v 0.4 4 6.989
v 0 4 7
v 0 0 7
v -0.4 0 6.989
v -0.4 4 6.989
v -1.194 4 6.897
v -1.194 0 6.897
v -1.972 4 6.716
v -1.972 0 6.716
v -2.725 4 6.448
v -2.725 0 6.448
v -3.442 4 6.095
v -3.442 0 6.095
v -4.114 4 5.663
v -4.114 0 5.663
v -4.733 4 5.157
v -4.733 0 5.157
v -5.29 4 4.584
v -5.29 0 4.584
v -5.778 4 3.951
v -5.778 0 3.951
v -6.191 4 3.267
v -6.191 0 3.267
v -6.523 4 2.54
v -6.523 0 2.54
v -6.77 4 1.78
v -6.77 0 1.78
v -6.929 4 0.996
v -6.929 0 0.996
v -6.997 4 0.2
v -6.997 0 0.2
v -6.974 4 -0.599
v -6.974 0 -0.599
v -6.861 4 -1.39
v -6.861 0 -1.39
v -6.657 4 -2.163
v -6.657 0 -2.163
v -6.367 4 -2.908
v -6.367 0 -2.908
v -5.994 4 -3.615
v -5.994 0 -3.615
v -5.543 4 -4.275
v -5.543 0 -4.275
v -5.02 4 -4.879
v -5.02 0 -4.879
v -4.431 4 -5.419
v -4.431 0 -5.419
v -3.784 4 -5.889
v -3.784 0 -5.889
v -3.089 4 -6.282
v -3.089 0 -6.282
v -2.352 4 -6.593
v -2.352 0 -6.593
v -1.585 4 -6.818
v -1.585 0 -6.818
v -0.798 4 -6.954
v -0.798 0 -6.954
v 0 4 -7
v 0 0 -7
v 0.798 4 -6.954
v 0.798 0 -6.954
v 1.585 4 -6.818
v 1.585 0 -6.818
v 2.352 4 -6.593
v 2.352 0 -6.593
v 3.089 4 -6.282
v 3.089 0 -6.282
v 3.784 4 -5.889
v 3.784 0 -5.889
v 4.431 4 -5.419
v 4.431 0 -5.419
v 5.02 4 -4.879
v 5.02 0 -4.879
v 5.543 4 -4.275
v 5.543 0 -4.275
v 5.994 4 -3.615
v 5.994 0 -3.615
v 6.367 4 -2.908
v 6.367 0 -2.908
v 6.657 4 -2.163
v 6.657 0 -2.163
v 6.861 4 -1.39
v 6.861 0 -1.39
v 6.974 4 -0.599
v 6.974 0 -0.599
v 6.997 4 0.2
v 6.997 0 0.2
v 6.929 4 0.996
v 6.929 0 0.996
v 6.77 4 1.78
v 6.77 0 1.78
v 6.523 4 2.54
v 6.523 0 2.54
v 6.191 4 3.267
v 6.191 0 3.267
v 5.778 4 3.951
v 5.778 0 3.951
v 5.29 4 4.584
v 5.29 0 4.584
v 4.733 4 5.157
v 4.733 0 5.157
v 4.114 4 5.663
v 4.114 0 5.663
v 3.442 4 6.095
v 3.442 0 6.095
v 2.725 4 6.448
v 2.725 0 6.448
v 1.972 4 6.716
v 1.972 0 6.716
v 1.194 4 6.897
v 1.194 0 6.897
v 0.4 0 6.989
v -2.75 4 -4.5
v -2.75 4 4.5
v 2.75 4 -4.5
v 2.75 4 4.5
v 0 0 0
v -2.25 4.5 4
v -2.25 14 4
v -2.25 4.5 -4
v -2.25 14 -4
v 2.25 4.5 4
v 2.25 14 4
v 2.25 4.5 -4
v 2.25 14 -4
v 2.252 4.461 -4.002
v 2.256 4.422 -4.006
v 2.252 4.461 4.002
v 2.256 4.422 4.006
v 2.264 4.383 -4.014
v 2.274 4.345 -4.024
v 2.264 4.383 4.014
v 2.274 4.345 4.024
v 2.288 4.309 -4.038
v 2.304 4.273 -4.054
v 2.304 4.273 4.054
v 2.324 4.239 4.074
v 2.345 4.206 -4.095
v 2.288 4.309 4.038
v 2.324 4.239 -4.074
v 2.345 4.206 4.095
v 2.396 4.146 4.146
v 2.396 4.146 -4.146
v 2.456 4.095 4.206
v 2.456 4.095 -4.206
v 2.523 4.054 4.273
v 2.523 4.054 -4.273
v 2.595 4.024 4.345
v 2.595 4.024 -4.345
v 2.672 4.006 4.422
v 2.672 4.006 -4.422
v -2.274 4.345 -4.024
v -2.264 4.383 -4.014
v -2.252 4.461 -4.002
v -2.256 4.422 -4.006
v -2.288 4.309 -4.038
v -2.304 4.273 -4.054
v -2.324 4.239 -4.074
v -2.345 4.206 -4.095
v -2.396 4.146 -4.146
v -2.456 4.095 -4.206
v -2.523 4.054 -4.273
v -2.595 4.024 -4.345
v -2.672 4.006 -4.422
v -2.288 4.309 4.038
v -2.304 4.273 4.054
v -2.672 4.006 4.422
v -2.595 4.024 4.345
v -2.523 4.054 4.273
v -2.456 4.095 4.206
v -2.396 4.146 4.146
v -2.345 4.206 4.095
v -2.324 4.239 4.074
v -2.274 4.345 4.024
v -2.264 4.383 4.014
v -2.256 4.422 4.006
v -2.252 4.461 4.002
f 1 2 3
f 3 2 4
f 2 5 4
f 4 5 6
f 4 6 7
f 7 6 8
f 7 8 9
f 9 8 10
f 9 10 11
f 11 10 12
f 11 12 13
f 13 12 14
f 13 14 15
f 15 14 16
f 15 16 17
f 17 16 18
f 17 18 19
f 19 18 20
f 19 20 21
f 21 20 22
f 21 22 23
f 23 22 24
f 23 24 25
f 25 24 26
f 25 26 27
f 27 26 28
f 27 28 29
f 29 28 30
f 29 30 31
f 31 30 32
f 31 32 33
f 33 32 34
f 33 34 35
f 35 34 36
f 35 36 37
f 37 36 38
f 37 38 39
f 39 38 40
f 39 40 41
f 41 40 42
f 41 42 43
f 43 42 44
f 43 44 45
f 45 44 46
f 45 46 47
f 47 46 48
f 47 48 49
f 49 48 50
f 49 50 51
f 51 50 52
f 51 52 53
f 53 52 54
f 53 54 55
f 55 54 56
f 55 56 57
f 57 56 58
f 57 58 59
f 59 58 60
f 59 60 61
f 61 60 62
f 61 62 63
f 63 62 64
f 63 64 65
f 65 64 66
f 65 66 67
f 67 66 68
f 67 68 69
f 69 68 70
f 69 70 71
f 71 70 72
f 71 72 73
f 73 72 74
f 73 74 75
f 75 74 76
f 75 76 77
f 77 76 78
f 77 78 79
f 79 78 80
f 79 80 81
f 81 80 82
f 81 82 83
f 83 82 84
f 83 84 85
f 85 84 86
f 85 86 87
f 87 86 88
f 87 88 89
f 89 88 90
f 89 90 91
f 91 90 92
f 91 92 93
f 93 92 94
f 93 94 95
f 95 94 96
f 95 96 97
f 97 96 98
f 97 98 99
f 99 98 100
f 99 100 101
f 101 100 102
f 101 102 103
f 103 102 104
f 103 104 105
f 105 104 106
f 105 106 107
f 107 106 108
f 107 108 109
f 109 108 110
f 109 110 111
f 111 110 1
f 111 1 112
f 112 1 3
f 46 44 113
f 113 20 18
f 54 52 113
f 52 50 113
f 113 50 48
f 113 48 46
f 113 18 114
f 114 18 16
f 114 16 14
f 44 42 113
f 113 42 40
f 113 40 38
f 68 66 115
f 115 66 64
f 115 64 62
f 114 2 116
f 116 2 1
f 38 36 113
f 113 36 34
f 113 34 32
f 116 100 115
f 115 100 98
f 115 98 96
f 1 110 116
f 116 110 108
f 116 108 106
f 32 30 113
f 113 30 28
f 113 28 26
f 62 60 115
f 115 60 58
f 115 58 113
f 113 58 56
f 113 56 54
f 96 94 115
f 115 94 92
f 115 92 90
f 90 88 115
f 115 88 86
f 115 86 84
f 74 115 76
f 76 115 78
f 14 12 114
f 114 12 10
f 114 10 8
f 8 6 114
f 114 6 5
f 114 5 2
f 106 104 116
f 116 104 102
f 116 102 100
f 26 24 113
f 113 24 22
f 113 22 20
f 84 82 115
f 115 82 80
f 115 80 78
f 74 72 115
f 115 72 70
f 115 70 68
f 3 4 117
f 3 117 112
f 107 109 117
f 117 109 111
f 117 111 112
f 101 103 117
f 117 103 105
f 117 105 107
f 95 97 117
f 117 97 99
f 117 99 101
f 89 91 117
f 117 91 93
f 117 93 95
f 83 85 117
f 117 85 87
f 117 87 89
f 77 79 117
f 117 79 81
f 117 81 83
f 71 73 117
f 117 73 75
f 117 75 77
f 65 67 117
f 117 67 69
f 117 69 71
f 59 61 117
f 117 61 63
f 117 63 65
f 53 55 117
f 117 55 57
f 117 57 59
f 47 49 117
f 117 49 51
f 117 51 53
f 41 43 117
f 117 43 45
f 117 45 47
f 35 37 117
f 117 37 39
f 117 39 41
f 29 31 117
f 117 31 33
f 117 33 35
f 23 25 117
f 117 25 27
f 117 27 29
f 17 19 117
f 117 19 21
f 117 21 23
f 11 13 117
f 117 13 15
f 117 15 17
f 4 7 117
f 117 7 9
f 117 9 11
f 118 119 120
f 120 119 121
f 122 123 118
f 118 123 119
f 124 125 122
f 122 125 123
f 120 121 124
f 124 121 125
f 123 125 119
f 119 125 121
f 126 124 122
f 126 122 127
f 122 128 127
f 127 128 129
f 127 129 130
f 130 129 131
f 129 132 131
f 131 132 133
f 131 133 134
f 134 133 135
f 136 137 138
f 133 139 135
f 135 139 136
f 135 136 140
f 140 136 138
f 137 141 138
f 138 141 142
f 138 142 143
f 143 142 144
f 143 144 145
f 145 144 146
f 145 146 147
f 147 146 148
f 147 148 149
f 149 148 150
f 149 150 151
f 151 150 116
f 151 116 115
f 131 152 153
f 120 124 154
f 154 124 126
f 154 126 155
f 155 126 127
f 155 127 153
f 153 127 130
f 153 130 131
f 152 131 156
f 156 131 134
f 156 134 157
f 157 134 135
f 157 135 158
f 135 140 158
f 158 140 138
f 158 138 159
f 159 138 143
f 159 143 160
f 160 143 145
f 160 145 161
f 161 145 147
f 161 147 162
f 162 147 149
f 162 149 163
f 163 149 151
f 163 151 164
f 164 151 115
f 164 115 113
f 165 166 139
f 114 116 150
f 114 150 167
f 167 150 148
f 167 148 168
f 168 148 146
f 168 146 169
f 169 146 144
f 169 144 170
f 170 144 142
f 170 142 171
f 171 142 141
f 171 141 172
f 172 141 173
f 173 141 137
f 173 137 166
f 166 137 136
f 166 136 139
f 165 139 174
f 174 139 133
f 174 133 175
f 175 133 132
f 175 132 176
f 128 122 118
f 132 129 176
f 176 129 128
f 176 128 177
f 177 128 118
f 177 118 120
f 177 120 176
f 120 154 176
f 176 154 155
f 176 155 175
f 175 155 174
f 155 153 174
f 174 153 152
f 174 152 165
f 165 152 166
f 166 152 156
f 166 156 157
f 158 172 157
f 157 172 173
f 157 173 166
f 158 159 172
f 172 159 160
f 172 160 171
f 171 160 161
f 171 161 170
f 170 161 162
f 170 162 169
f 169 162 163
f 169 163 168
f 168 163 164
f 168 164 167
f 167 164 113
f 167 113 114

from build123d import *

# Parameters (mm, degrees)
SKETCH1_R           = 7
BOSS_EXTRUDE1_DEPTH = 4
SKETCH2_W           = 4.5
SKETCH2_H           = 8
BOSS_EXTRUDE2_DEPTH = 10
FILLET2_R           = 0.5


with BuildPart() as part:
    # Sketch1 → Boss-Extrude1 (new body)
    with BuildSketch(Plane(origin=(0, 0, 0), x_dir=(1, 0, 0), z_dir=(0, 1, 0))):
        with Locations(Location((0, 0, 0), (0, 0, 270))):
            Circle(SKETCH1_R)
    extrude(amount=BOSS_EXTRUDE1_DEPTH)

    # Sketch2 → Boss-Extrude2 (add)
    with BuildSketch(Plane(origin=(0, 4, 0), x_dir=(1, 0, 0), z_dir=(0, 1, 0))):
        Rectangle(SKETCH2_W, SKETCH2_H)
    extrude(amount=BOSS_EXTRUDE2_DEPTH)

    # Fillet2
    fillet2_edges = [part.edges().sort_by_distance(p)[0] for p in [
        (-2.25, 4, 0),
        (0, 4, 4),
        (2.25, 4, 0),
        (0, 4, -4),
    ]]
    fillet(fillet2_edges, radius=FILLET2_R)


solid = part.part
